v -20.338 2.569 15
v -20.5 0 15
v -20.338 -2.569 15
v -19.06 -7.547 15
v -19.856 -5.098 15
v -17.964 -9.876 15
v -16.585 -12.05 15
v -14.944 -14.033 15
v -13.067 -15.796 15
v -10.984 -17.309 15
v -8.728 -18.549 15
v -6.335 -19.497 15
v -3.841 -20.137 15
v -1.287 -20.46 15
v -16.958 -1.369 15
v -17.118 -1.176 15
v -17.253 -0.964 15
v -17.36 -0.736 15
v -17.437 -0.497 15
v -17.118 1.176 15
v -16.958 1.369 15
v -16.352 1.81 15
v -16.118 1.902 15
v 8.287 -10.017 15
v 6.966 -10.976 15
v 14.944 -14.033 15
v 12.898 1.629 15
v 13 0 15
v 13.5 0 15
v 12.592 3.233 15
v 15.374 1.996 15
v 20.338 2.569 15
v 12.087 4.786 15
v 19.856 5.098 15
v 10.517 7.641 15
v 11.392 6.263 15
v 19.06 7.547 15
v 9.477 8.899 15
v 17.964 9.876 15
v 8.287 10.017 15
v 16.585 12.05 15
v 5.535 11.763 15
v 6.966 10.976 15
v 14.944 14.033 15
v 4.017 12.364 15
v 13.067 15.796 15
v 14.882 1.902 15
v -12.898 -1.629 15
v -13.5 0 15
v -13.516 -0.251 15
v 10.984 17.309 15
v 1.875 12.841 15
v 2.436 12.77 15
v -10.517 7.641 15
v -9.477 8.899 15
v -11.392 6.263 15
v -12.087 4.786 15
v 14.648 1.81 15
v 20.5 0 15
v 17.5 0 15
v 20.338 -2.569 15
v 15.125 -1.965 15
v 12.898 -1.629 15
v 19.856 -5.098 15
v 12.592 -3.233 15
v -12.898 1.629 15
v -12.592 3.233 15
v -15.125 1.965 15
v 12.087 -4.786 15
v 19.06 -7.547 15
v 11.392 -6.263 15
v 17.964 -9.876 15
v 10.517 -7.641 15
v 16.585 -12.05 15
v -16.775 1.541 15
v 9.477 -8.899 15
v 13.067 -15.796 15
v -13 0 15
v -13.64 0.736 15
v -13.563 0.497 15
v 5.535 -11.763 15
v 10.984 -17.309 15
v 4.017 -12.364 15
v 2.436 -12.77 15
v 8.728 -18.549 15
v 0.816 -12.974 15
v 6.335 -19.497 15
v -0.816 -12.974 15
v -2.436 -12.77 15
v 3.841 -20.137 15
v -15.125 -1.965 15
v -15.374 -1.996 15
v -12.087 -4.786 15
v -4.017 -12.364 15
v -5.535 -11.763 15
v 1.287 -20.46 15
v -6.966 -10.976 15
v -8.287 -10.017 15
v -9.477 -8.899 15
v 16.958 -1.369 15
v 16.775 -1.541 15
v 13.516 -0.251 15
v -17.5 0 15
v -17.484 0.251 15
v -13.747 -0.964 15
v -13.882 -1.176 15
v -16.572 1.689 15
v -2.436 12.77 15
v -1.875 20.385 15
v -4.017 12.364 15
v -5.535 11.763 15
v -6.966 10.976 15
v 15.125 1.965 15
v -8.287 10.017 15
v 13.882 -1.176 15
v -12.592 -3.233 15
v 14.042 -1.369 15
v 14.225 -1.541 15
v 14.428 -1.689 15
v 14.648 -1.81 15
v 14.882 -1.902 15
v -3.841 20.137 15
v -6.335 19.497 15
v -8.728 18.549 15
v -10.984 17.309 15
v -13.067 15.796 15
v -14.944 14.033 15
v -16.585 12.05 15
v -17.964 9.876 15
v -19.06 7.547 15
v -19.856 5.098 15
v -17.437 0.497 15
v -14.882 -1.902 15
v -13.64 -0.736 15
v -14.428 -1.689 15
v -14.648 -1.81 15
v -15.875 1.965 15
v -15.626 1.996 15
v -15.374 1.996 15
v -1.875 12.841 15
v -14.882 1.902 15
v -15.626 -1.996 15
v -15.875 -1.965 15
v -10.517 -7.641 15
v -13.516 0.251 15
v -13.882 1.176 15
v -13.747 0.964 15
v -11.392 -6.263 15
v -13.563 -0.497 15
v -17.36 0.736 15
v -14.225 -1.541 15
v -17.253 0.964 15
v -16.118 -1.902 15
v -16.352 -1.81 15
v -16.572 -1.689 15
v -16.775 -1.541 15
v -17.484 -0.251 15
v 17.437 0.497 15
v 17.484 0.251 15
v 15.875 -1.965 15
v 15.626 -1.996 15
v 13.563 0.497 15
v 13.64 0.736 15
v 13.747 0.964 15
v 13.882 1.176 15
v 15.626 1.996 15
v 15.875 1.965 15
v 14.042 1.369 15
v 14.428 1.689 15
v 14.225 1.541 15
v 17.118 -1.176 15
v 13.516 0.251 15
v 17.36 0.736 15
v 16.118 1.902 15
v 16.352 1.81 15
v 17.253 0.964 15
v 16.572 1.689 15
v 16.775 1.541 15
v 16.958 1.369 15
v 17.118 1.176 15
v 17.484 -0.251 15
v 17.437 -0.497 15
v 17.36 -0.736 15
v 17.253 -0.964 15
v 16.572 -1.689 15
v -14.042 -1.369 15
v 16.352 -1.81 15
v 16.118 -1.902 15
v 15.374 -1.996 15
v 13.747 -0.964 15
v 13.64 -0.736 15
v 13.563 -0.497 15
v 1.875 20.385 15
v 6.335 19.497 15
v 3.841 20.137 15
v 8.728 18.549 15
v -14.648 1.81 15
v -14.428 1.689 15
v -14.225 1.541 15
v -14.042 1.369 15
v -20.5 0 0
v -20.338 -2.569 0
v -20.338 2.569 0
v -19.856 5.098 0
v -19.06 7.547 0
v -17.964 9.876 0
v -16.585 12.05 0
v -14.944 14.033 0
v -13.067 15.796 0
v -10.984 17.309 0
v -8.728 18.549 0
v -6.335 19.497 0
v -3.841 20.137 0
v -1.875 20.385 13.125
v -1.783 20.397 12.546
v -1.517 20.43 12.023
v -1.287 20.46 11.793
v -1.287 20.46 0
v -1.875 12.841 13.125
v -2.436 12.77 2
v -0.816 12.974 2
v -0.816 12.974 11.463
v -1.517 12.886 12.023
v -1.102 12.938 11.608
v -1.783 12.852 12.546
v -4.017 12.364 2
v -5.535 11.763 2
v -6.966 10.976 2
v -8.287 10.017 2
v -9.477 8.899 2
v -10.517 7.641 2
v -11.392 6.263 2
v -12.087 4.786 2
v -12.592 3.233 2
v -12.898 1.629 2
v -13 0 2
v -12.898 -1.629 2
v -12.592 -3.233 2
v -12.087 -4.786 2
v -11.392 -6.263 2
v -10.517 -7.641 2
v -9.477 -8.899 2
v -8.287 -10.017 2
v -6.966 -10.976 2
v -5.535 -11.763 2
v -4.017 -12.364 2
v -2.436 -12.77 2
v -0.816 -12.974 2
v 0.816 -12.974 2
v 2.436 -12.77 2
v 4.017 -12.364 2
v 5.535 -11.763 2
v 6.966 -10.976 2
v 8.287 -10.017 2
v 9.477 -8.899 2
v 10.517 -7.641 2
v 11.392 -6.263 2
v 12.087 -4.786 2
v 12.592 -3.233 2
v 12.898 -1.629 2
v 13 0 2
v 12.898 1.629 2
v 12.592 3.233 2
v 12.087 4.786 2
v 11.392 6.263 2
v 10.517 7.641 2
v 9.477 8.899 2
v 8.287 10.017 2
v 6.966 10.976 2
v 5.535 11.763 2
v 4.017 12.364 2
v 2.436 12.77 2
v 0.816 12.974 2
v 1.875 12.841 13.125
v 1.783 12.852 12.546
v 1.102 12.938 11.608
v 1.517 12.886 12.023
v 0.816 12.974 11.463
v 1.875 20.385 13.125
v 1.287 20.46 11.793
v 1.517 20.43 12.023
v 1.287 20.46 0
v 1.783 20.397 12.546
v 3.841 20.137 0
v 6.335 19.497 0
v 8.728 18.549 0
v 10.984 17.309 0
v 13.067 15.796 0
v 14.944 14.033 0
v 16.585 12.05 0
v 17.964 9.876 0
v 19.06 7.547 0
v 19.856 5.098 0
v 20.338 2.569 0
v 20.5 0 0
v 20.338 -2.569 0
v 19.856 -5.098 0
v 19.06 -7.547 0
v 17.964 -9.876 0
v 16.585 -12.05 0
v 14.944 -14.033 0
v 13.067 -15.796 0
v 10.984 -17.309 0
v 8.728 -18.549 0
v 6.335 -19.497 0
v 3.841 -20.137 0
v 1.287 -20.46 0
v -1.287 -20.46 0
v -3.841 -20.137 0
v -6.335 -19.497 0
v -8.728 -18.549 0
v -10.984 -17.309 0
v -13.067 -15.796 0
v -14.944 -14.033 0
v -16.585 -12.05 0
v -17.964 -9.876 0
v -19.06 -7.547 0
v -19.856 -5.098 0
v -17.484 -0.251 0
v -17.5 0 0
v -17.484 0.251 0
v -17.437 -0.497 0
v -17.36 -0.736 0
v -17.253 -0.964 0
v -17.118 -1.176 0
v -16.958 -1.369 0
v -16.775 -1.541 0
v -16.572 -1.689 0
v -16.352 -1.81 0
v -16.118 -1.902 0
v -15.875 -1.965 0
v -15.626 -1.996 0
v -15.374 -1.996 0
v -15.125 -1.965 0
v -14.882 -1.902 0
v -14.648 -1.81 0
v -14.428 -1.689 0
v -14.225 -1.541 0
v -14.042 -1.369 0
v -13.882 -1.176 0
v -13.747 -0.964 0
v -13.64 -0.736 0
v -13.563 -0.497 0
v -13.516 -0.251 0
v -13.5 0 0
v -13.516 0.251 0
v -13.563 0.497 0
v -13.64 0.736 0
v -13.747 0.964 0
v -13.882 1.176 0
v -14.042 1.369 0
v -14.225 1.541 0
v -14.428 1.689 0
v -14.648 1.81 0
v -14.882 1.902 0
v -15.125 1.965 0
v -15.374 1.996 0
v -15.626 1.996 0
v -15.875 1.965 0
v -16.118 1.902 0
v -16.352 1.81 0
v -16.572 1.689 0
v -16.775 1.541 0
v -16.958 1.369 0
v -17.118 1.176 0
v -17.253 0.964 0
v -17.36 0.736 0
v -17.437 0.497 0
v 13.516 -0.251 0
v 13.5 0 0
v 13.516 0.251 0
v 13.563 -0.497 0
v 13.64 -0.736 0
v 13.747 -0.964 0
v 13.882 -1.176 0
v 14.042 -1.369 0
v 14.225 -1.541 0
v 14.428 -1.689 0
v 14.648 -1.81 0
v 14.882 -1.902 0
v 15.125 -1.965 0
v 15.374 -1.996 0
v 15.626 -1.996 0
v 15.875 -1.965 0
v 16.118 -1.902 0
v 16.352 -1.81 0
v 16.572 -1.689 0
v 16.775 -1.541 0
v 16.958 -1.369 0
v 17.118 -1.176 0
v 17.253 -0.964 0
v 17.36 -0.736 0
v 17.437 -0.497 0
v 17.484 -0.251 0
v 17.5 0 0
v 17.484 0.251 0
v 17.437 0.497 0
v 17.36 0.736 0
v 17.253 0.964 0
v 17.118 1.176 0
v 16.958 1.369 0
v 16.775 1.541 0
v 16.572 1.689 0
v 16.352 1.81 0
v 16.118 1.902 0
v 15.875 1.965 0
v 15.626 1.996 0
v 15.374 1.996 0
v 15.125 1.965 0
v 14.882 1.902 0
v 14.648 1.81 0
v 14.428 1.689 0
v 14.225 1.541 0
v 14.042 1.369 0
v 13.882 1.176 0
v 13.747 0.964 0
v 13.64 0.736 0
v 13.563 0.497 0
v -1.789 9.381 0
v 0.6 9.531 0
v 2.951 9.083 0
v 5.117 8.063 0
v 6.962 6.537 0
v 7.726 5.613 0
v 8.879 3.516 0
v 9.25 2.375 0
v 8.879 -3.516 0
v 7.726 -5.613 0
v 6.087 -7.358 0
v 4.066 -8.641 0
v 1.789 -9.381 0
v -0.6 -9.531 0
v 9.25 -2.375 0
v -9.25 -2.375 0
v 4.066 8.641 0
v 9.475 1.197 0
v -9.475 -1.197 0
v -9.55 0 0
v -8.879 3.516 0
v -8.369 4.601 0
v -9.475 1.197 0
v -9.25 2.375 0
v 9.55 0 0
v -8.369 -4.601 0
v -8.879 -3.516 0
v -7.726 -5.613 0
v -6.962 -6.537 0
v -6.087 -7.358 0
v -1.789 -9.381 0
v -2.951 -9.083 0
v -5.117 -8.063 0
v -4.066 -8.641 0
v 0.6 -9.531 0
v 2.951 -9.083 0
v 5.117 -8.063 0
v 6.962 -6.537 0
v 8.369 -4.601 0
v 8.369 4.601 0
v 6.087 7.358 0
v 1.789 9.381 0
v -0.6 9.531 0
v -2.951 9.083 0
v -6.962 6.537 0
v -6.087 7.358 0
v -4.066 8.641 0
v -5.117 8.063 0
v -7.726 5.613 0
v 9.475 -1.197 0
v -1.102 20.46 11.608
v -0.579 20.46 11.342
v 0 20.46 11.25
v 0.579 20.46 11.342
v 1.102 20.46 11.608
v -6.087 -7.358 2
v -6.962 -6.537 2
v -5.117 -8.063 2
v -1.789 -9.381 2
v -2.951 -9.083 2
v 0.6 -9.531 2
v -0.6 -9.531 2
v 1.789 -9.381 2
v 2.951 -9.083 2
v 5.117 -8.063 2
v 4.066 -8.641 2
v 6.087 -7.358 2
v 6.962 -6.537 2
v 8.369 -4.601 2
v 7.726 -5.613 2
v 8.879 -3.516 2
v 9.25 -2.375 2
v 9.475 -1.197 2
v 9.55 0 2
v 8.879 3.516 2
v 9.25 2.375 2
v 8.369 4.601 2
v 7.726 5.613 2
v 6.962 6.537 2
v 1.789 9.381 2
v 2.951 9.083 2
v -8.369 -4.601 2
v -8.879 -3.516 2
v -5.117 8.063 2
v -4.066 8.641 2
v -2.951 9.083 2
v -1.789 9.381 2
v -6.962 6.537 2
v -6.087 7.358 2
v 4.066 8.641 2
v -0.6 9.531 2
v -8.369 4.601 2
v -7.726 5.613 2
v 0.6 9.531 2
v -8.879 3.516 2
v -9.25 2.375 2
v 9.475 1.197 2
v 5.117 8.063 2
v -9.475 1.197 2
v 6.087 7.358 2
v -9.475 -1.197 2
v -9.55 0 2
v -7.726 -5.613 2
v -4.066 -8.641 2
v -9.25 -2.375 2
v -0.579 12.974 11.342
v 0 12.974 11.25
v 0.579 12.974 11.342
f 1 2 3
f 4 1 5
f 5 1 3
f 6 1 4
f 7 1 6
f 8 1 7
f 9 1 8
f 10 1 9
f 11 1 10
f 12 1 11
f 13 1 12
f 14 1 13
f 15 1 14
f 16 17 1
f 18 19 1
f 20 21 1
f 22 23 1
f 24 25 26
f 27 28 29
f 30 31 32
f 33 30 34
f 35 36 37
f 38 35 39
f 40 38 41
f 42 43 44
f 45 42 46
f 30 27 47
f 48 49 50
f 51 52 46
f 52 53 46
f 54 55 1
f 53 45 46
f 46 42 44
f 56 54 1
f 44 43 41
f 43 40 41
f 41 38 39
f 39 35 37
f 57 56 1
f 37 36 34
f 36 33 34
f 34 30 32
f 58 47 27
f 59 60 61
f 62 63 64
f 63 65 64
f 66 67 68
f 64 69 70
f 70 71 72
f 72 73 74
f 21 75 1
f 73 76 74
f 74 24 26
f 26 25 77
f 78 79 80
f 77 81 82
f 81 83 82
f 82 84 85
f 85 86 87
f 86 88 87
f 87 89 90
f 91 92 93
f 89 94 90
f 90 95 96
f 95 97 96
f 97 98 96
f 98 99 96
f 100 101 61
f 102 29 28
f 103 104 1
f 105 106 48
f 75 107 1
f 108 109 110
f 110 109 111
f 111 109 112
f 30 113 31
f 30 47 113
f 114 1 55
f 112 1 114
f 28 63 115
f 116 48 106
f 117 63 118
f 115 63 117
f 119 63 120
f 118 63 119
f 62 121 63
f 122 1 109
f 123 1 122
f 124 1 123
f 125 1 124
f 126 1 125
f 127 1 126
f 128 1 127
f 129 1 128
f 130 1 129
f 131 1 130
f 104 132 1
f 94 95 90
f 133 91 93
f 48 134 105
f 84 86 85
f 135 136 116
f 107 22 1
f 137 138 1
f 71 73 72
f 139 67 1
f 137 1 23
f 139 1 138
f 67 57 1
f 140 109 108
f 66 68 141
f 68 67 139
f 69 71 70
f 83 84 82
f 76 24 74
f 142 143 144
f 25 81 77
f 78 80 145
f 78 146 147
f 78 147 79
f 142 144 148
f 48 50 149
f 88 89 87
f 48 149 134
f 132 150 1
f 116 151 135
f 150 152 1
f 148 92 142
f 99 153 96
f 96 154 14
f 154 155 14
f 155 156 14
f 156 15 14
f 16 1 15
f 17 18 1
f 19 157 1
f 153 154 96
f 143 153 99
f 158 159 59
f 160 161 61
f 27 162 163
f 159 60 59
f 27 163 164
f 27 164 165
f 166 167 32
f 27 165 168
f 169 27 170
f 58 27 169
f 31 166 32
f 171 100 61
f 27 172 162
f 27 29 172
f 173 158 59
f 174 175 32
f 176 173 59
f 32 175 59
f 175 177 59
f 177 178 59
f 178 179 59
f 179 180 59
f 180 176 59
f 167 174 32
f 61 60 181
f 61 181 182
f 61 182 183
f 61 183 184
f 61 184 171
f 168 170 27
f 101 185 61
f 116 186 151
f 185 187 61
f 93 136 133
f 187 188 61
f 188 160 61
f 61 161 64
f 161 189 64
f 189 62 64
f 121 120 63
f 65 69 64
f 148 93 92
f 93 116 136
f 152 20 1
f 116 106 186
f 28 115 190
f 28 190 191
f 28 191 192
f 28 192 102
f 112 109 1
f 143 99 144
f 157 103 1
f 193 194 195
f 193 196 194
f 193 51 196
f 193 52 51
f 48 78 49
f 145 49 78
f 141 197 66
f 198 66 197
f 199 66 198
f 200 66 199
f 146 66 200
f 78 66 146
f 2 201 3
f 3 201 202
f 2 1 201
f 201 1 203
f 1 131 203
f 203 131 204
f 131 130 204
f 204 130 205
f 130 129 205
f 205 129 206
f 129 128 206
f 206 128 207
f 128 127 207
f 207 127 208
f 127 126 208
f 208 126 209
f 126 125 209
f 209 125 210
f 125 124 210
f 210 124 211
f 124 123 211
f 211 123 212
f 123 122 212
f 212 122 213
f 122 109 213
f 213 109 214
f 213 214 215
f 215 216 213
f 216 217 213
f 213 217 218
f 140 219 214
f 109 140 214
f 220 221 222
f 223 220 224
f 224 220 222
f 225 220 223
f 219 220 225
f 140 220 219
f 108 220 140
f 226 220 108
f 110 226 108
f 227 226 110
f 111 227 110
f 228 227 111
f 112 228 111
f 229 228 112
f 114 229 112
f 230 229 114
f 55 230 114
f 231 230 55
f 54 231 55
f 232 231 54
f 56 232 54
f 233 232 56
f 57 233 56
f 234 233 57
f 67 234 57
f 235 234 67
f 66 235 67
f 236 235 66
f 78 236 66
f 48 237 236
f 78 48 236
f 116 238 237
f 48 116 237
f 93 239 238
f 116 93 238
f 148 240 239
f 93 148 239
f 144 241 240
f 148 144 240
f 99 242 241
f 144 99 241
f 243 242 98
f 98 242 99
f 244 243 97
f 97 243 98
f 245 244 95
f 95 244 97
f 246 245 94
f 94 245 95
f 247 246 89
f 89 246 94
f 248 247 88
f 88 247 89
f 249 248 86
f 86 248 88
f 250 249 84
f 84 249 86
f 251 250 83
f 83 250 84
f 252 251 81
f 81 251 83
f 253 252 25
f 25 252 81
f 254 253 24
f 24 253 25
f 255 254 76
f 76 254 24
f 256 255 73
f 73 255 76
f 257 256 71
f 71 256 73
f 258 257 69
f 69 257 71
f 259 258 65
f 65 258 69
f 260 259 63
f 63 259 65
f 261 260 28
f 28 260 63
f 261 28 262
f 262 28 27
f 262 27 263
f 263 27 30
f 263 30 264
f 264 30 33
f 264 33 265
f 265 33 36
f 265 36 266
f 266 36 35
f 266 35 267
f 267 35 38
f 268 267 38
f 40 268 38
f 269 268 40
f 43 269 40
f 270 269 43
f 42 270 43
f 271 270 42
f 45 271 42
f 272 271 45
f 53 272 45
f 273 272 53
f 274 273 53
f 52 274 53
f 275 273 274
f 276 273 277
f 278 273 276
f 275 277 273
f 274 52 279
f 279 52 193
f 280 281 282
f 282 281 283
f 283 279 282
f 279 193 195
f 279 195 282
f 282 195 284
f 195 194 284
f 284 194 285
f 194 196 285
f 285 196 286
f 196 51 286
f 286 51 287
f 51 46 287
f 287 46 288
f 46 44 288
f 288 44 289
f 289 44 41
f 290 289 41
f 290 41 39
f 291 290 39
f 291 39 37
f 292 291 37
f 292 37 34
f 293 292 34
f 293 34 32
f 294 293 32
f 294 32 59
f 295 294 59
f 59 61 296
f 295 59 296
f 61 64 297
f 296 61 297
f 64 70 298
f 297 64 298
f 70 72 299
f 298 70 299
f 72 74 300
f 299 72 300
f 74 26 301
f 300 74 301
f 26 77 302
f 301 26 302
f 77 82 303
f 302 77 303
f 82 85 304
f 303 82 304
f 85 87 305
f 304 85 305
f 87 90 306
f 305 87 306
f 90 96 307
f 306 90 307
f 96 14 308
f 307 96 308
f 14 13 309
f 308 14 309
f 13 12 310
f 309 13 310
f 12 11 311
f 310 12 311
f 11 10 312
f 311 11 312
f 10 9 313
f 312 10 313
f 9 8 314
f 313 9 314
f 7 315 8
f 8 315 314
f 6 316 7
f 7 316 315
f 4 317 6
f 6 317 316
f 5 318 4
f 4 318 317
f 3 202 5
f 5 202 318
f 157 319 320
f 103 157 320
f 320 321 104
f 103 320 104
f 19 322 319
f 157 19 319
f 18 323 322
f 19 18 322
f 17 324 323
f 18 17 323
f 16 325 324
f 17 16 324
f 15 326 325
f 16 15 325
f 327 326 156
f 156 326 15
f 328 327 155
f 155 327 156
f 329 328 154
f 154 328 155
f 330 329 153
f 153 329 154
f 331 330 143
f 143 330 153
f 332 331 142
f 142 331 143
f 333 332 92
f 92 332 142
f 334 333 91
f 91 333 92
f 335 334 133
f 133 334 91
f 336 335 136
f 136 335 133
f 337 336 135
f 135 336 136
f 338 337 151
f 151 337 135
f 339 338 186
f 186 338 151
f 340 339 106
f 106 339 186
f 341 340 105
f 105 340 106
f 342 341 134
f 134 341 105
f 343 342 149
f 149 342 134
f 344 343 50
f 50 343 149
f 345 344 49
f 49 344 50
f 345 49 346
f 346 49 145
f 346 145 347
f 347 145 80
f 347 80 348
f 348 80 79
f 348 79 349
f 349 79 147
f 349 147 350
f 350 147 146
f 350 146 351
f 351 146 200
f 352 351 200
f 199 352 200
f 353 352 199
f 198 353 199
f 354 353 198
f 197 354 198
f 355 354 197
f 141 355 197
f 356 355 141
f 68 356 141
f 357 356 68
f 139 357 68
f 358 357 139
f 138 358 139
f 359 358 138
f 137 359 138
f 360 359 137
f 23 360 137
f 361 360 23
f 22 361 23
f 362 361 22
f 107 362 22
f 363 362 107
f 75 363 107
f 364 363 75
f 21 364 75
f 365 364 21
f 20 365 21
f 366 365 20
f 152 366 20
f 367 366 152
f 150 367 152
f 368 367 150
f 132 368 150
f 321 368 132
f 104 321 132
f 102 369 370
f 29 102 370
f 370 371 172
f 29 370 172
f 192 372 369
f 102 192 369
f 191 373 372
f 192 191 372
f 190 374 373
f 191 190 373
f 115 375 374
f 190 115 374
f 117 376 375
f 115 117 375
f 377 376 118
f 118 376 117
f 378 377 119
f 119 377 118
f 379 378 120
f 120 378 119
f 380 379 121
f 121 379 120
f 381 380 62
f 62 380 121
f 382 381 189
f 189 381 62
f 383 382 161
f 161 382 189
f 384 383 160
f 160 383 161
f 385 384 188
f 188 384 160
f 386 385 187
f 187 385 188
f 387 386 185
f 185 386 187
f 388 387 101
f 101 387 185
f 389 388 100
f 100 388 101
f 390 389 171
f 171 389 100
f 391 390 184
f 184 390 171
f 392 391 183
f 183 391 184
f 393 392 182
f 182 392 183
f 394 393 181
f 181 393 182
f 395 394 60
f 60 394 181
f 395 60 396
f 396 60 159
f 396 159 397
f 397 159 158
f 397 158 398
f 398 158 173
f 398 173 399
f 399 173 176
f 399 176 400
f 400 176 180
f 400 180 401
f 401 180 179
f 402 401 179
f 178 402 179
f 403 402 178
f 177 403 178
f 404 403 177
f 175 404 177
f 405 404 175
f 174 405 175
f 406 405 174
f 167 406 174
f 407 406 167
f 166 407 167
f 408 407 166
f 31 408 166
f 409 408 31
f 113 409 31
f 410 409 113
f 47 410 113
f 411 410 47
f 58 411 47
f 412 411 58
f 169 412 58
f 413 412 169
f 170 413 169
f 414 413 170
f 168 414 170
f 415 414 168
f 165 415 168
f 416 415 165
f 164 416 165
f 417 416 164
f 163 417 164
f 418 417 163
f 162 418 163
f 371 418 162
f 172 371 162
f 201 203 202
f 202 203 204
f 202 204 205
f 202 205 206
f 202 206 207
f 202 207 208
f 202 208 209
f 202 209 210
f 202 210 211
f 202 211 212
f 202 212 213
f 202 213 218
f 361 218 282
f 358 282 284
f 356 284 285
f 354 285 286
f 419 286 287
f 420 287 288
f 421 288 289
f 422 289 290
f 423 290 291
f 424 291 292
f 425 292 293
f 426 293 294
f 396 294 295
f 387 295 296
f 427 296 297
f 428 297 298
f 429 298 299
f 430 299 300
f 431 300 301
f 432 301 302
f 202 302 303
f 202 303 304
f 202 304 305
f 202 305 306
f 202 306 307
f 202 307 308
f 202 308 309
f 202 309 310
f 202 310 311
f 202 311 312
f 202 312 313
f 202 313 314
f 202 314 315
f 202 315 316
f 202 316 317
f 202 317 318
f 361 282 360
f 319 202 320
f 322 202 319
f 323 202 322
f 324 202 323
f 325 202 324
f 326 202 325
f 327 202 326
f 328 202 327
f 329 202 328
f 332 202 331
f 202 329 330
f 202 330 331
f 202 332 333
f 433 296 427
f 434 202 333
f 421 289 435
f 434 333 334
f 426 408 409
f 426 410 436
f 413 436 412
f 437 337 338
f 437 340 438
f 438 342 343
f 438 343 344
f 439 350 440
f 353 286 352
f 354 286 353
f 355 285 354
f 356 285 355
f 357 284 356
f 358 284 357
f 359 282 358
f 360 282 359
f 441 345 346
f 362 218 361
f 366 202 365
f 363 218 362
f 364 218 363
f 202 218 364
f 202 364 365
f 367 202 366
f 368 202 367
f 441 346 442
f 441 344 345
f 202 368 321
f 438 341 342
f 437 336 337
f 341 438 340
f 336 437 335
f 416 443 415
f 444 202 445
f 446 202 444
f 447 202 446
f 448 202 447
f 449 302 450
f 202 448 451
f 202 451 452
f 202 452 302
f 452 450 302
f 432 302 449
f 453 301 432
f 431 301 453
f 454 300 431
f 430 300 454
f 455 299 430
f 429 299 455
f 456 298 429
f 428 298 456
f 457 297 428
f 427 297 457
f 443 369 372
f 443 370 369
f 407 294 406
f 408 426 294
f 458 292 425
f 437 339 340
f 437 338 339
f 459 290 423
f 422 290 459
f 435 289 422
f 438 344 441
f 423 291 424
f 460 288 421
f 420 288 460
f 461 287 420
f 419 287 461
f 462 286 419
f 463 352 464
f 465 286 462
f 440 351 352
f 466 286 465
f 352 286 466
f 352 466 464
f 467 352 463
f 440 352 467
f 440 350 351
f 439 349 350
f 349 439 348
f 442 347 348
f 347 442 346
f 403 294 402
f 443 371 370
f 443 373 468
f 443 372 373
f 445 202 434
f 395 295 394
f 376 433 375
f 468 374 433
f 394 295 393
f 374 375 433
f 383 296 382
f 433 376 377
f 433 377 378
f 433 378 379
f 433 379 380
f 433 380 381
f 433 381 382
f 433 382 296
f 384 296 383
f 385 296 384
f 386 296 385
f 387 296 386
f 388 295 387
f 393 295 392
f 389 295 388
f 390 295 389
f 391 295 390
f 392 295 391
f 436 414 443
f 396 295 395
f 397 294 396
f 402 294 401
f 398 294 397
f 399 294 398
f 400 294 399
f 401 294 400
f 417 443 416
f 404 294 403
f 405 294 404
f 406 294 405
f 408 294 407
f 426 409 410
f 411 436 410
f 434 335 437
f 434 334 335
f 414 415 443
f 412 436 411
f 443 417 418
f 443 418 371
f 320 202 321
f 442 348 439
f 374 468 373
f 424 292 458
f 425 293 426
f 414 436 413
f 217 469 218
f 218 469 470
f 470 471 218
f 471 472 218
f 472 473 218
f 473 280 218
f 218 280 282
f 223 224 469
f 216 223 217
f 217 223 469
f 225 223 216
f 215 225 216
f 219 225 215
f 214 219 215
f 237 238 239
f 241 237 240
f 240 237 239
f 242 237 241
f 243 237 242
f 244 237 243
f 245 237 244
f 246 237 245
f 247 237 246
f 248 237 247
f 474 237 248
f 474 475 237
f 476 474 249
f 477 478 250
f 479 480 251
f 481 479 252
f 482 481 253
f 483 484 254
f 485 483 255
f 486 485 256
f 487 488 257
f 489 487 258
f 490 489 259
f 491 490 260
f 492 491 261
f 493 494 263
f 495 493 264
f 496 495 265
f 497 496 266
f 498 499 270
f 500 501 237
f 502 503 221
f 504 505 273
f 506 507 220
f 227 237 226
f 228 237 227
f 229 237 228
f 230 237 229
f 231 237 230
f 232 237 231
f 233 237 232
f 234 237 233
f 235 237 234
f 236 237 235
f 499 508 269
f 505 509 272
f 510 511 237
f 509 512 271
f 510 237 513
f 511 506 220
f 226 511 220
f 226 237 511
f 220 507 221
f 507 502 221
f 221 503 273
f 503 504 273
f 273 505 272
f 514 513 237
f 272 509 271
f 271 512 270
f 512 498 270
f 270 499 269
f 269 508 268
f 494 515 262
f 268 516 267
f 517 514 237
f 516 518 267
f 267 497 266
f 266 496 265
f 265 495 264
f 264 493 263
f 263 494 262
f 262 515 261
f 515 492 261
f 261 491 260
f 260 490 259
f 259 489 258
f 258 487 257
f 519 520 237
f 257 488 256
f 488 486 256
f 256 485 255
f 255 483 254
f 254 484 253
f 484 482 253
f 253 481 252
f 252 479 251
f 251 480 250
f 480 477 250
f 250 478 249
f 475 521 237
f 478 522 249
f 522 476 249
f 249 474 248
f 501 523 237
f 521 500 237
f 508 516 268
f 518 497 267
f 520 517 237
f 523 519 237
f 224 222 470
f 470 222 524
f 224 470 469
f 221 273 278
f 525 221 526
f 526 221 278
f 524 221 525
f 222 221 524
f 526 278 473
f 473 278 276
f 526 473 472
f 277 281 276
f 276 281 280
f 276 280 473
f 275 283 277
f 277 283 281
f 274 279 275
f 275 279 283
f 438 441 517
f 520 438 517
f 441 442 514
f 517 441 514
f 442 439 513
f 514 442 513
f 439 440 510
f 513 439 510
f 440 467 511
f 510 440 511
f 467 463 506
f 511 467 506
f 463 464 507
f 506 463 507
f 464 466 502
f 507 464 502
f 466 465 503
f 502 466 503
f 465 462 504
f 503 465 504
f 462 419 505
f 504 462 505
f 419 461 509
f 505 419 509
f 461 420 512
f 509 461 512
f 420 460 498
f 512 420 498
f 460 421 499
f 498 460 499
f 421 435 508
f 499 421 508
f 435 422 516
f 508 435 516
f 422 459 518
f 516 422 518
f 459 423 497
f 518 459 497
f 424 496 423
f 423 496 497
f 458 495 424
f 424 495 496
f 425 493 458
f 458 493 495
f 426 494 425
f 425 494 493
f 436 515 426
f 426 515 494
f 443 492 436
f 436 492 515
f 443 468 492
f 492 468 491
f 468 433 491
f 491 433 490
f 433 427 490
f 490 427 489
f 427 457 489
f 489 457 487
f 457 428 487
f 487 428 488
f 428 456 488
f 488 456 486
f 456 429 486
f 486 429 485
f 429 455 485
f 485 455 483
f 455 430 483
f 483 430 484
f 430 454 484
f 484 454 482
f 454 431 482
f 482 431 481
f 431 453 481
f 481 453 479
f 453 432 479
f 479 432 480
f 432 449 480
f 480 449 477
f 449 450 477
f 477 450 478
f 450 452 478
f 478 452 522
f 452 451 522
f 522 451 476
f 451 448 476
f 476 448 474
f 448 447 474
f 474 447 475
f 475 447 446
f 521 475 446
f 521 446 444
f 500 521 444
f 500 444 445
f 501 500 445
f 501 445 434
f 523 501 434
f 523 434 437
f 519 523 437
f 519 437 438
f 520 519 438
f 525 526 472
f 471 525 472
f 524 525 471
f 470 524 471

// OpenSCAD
// file: stack_params.scad
stackInnerR = 26/2;
stackWallT = 3;

assemblyScrewR = 4/2;
assemblyScrewCenterR = stackInnerR+assemblyScrewR+0.5; // give ourselves clearance

stackOuterR = assemblyScrewCenterR+assemblyScrewR+stackWallT;



nutHeadWidth = 7;
nutHeadHeight = 3;

boltL = 20; // 20mm M4 bolts


flangeW = 10;
flangeH = 10;
flangeHoleR = 4.5/2;
flangeHoleHead = 7.6/2;
flangeHoleD = 3;

baseT = nutHeadHeight+2;

bodyH = boltL-baseT;

usbCableR = 3.75/2;



lensEndD = 15;
lensEndH = 3;
cameraEndD = 6;
cameraEndH = 2.5;

wallT = 2;

lensStackH = lensEndH+cameraEndH;
lensStackD = max(lensEndD, cameraEndD)+2*wallT;
// main file
include <stack_params.scad>;

topT = 2;

$fn=50;

translate([0,0,bodyH])
rotate([180,0,0])
difference() {

  cylinder(bodyH, stackOuterR, stackOuterR, false);
  cylinder(bodyH-topT, stackInnerR, stackInnerR, false);
  cylinder(100, lensStackD/2+0.05, lensStackD/2+0.05, false);


  // assembly screws
  translate([-assemblyScrewCenterR, 0, 0])  cylinder(100, assemblyScrewR, assemblyScrewR, false);
  translate([assemblyScrewCenterR, 0, 0])  cylinder(100, assemblyScrewR, assemblyScrewR, false);



  // USB cable port
  rotate([90,-90,0])
    linear_extrude(height=30) union() {
    translate([usbCableR, 0,0]) circle(usbCableR, $fn=20);
    translate([-1, -usbCableR,0]) square([usbCableR+1, usbCableR*2], false);
  }


}
